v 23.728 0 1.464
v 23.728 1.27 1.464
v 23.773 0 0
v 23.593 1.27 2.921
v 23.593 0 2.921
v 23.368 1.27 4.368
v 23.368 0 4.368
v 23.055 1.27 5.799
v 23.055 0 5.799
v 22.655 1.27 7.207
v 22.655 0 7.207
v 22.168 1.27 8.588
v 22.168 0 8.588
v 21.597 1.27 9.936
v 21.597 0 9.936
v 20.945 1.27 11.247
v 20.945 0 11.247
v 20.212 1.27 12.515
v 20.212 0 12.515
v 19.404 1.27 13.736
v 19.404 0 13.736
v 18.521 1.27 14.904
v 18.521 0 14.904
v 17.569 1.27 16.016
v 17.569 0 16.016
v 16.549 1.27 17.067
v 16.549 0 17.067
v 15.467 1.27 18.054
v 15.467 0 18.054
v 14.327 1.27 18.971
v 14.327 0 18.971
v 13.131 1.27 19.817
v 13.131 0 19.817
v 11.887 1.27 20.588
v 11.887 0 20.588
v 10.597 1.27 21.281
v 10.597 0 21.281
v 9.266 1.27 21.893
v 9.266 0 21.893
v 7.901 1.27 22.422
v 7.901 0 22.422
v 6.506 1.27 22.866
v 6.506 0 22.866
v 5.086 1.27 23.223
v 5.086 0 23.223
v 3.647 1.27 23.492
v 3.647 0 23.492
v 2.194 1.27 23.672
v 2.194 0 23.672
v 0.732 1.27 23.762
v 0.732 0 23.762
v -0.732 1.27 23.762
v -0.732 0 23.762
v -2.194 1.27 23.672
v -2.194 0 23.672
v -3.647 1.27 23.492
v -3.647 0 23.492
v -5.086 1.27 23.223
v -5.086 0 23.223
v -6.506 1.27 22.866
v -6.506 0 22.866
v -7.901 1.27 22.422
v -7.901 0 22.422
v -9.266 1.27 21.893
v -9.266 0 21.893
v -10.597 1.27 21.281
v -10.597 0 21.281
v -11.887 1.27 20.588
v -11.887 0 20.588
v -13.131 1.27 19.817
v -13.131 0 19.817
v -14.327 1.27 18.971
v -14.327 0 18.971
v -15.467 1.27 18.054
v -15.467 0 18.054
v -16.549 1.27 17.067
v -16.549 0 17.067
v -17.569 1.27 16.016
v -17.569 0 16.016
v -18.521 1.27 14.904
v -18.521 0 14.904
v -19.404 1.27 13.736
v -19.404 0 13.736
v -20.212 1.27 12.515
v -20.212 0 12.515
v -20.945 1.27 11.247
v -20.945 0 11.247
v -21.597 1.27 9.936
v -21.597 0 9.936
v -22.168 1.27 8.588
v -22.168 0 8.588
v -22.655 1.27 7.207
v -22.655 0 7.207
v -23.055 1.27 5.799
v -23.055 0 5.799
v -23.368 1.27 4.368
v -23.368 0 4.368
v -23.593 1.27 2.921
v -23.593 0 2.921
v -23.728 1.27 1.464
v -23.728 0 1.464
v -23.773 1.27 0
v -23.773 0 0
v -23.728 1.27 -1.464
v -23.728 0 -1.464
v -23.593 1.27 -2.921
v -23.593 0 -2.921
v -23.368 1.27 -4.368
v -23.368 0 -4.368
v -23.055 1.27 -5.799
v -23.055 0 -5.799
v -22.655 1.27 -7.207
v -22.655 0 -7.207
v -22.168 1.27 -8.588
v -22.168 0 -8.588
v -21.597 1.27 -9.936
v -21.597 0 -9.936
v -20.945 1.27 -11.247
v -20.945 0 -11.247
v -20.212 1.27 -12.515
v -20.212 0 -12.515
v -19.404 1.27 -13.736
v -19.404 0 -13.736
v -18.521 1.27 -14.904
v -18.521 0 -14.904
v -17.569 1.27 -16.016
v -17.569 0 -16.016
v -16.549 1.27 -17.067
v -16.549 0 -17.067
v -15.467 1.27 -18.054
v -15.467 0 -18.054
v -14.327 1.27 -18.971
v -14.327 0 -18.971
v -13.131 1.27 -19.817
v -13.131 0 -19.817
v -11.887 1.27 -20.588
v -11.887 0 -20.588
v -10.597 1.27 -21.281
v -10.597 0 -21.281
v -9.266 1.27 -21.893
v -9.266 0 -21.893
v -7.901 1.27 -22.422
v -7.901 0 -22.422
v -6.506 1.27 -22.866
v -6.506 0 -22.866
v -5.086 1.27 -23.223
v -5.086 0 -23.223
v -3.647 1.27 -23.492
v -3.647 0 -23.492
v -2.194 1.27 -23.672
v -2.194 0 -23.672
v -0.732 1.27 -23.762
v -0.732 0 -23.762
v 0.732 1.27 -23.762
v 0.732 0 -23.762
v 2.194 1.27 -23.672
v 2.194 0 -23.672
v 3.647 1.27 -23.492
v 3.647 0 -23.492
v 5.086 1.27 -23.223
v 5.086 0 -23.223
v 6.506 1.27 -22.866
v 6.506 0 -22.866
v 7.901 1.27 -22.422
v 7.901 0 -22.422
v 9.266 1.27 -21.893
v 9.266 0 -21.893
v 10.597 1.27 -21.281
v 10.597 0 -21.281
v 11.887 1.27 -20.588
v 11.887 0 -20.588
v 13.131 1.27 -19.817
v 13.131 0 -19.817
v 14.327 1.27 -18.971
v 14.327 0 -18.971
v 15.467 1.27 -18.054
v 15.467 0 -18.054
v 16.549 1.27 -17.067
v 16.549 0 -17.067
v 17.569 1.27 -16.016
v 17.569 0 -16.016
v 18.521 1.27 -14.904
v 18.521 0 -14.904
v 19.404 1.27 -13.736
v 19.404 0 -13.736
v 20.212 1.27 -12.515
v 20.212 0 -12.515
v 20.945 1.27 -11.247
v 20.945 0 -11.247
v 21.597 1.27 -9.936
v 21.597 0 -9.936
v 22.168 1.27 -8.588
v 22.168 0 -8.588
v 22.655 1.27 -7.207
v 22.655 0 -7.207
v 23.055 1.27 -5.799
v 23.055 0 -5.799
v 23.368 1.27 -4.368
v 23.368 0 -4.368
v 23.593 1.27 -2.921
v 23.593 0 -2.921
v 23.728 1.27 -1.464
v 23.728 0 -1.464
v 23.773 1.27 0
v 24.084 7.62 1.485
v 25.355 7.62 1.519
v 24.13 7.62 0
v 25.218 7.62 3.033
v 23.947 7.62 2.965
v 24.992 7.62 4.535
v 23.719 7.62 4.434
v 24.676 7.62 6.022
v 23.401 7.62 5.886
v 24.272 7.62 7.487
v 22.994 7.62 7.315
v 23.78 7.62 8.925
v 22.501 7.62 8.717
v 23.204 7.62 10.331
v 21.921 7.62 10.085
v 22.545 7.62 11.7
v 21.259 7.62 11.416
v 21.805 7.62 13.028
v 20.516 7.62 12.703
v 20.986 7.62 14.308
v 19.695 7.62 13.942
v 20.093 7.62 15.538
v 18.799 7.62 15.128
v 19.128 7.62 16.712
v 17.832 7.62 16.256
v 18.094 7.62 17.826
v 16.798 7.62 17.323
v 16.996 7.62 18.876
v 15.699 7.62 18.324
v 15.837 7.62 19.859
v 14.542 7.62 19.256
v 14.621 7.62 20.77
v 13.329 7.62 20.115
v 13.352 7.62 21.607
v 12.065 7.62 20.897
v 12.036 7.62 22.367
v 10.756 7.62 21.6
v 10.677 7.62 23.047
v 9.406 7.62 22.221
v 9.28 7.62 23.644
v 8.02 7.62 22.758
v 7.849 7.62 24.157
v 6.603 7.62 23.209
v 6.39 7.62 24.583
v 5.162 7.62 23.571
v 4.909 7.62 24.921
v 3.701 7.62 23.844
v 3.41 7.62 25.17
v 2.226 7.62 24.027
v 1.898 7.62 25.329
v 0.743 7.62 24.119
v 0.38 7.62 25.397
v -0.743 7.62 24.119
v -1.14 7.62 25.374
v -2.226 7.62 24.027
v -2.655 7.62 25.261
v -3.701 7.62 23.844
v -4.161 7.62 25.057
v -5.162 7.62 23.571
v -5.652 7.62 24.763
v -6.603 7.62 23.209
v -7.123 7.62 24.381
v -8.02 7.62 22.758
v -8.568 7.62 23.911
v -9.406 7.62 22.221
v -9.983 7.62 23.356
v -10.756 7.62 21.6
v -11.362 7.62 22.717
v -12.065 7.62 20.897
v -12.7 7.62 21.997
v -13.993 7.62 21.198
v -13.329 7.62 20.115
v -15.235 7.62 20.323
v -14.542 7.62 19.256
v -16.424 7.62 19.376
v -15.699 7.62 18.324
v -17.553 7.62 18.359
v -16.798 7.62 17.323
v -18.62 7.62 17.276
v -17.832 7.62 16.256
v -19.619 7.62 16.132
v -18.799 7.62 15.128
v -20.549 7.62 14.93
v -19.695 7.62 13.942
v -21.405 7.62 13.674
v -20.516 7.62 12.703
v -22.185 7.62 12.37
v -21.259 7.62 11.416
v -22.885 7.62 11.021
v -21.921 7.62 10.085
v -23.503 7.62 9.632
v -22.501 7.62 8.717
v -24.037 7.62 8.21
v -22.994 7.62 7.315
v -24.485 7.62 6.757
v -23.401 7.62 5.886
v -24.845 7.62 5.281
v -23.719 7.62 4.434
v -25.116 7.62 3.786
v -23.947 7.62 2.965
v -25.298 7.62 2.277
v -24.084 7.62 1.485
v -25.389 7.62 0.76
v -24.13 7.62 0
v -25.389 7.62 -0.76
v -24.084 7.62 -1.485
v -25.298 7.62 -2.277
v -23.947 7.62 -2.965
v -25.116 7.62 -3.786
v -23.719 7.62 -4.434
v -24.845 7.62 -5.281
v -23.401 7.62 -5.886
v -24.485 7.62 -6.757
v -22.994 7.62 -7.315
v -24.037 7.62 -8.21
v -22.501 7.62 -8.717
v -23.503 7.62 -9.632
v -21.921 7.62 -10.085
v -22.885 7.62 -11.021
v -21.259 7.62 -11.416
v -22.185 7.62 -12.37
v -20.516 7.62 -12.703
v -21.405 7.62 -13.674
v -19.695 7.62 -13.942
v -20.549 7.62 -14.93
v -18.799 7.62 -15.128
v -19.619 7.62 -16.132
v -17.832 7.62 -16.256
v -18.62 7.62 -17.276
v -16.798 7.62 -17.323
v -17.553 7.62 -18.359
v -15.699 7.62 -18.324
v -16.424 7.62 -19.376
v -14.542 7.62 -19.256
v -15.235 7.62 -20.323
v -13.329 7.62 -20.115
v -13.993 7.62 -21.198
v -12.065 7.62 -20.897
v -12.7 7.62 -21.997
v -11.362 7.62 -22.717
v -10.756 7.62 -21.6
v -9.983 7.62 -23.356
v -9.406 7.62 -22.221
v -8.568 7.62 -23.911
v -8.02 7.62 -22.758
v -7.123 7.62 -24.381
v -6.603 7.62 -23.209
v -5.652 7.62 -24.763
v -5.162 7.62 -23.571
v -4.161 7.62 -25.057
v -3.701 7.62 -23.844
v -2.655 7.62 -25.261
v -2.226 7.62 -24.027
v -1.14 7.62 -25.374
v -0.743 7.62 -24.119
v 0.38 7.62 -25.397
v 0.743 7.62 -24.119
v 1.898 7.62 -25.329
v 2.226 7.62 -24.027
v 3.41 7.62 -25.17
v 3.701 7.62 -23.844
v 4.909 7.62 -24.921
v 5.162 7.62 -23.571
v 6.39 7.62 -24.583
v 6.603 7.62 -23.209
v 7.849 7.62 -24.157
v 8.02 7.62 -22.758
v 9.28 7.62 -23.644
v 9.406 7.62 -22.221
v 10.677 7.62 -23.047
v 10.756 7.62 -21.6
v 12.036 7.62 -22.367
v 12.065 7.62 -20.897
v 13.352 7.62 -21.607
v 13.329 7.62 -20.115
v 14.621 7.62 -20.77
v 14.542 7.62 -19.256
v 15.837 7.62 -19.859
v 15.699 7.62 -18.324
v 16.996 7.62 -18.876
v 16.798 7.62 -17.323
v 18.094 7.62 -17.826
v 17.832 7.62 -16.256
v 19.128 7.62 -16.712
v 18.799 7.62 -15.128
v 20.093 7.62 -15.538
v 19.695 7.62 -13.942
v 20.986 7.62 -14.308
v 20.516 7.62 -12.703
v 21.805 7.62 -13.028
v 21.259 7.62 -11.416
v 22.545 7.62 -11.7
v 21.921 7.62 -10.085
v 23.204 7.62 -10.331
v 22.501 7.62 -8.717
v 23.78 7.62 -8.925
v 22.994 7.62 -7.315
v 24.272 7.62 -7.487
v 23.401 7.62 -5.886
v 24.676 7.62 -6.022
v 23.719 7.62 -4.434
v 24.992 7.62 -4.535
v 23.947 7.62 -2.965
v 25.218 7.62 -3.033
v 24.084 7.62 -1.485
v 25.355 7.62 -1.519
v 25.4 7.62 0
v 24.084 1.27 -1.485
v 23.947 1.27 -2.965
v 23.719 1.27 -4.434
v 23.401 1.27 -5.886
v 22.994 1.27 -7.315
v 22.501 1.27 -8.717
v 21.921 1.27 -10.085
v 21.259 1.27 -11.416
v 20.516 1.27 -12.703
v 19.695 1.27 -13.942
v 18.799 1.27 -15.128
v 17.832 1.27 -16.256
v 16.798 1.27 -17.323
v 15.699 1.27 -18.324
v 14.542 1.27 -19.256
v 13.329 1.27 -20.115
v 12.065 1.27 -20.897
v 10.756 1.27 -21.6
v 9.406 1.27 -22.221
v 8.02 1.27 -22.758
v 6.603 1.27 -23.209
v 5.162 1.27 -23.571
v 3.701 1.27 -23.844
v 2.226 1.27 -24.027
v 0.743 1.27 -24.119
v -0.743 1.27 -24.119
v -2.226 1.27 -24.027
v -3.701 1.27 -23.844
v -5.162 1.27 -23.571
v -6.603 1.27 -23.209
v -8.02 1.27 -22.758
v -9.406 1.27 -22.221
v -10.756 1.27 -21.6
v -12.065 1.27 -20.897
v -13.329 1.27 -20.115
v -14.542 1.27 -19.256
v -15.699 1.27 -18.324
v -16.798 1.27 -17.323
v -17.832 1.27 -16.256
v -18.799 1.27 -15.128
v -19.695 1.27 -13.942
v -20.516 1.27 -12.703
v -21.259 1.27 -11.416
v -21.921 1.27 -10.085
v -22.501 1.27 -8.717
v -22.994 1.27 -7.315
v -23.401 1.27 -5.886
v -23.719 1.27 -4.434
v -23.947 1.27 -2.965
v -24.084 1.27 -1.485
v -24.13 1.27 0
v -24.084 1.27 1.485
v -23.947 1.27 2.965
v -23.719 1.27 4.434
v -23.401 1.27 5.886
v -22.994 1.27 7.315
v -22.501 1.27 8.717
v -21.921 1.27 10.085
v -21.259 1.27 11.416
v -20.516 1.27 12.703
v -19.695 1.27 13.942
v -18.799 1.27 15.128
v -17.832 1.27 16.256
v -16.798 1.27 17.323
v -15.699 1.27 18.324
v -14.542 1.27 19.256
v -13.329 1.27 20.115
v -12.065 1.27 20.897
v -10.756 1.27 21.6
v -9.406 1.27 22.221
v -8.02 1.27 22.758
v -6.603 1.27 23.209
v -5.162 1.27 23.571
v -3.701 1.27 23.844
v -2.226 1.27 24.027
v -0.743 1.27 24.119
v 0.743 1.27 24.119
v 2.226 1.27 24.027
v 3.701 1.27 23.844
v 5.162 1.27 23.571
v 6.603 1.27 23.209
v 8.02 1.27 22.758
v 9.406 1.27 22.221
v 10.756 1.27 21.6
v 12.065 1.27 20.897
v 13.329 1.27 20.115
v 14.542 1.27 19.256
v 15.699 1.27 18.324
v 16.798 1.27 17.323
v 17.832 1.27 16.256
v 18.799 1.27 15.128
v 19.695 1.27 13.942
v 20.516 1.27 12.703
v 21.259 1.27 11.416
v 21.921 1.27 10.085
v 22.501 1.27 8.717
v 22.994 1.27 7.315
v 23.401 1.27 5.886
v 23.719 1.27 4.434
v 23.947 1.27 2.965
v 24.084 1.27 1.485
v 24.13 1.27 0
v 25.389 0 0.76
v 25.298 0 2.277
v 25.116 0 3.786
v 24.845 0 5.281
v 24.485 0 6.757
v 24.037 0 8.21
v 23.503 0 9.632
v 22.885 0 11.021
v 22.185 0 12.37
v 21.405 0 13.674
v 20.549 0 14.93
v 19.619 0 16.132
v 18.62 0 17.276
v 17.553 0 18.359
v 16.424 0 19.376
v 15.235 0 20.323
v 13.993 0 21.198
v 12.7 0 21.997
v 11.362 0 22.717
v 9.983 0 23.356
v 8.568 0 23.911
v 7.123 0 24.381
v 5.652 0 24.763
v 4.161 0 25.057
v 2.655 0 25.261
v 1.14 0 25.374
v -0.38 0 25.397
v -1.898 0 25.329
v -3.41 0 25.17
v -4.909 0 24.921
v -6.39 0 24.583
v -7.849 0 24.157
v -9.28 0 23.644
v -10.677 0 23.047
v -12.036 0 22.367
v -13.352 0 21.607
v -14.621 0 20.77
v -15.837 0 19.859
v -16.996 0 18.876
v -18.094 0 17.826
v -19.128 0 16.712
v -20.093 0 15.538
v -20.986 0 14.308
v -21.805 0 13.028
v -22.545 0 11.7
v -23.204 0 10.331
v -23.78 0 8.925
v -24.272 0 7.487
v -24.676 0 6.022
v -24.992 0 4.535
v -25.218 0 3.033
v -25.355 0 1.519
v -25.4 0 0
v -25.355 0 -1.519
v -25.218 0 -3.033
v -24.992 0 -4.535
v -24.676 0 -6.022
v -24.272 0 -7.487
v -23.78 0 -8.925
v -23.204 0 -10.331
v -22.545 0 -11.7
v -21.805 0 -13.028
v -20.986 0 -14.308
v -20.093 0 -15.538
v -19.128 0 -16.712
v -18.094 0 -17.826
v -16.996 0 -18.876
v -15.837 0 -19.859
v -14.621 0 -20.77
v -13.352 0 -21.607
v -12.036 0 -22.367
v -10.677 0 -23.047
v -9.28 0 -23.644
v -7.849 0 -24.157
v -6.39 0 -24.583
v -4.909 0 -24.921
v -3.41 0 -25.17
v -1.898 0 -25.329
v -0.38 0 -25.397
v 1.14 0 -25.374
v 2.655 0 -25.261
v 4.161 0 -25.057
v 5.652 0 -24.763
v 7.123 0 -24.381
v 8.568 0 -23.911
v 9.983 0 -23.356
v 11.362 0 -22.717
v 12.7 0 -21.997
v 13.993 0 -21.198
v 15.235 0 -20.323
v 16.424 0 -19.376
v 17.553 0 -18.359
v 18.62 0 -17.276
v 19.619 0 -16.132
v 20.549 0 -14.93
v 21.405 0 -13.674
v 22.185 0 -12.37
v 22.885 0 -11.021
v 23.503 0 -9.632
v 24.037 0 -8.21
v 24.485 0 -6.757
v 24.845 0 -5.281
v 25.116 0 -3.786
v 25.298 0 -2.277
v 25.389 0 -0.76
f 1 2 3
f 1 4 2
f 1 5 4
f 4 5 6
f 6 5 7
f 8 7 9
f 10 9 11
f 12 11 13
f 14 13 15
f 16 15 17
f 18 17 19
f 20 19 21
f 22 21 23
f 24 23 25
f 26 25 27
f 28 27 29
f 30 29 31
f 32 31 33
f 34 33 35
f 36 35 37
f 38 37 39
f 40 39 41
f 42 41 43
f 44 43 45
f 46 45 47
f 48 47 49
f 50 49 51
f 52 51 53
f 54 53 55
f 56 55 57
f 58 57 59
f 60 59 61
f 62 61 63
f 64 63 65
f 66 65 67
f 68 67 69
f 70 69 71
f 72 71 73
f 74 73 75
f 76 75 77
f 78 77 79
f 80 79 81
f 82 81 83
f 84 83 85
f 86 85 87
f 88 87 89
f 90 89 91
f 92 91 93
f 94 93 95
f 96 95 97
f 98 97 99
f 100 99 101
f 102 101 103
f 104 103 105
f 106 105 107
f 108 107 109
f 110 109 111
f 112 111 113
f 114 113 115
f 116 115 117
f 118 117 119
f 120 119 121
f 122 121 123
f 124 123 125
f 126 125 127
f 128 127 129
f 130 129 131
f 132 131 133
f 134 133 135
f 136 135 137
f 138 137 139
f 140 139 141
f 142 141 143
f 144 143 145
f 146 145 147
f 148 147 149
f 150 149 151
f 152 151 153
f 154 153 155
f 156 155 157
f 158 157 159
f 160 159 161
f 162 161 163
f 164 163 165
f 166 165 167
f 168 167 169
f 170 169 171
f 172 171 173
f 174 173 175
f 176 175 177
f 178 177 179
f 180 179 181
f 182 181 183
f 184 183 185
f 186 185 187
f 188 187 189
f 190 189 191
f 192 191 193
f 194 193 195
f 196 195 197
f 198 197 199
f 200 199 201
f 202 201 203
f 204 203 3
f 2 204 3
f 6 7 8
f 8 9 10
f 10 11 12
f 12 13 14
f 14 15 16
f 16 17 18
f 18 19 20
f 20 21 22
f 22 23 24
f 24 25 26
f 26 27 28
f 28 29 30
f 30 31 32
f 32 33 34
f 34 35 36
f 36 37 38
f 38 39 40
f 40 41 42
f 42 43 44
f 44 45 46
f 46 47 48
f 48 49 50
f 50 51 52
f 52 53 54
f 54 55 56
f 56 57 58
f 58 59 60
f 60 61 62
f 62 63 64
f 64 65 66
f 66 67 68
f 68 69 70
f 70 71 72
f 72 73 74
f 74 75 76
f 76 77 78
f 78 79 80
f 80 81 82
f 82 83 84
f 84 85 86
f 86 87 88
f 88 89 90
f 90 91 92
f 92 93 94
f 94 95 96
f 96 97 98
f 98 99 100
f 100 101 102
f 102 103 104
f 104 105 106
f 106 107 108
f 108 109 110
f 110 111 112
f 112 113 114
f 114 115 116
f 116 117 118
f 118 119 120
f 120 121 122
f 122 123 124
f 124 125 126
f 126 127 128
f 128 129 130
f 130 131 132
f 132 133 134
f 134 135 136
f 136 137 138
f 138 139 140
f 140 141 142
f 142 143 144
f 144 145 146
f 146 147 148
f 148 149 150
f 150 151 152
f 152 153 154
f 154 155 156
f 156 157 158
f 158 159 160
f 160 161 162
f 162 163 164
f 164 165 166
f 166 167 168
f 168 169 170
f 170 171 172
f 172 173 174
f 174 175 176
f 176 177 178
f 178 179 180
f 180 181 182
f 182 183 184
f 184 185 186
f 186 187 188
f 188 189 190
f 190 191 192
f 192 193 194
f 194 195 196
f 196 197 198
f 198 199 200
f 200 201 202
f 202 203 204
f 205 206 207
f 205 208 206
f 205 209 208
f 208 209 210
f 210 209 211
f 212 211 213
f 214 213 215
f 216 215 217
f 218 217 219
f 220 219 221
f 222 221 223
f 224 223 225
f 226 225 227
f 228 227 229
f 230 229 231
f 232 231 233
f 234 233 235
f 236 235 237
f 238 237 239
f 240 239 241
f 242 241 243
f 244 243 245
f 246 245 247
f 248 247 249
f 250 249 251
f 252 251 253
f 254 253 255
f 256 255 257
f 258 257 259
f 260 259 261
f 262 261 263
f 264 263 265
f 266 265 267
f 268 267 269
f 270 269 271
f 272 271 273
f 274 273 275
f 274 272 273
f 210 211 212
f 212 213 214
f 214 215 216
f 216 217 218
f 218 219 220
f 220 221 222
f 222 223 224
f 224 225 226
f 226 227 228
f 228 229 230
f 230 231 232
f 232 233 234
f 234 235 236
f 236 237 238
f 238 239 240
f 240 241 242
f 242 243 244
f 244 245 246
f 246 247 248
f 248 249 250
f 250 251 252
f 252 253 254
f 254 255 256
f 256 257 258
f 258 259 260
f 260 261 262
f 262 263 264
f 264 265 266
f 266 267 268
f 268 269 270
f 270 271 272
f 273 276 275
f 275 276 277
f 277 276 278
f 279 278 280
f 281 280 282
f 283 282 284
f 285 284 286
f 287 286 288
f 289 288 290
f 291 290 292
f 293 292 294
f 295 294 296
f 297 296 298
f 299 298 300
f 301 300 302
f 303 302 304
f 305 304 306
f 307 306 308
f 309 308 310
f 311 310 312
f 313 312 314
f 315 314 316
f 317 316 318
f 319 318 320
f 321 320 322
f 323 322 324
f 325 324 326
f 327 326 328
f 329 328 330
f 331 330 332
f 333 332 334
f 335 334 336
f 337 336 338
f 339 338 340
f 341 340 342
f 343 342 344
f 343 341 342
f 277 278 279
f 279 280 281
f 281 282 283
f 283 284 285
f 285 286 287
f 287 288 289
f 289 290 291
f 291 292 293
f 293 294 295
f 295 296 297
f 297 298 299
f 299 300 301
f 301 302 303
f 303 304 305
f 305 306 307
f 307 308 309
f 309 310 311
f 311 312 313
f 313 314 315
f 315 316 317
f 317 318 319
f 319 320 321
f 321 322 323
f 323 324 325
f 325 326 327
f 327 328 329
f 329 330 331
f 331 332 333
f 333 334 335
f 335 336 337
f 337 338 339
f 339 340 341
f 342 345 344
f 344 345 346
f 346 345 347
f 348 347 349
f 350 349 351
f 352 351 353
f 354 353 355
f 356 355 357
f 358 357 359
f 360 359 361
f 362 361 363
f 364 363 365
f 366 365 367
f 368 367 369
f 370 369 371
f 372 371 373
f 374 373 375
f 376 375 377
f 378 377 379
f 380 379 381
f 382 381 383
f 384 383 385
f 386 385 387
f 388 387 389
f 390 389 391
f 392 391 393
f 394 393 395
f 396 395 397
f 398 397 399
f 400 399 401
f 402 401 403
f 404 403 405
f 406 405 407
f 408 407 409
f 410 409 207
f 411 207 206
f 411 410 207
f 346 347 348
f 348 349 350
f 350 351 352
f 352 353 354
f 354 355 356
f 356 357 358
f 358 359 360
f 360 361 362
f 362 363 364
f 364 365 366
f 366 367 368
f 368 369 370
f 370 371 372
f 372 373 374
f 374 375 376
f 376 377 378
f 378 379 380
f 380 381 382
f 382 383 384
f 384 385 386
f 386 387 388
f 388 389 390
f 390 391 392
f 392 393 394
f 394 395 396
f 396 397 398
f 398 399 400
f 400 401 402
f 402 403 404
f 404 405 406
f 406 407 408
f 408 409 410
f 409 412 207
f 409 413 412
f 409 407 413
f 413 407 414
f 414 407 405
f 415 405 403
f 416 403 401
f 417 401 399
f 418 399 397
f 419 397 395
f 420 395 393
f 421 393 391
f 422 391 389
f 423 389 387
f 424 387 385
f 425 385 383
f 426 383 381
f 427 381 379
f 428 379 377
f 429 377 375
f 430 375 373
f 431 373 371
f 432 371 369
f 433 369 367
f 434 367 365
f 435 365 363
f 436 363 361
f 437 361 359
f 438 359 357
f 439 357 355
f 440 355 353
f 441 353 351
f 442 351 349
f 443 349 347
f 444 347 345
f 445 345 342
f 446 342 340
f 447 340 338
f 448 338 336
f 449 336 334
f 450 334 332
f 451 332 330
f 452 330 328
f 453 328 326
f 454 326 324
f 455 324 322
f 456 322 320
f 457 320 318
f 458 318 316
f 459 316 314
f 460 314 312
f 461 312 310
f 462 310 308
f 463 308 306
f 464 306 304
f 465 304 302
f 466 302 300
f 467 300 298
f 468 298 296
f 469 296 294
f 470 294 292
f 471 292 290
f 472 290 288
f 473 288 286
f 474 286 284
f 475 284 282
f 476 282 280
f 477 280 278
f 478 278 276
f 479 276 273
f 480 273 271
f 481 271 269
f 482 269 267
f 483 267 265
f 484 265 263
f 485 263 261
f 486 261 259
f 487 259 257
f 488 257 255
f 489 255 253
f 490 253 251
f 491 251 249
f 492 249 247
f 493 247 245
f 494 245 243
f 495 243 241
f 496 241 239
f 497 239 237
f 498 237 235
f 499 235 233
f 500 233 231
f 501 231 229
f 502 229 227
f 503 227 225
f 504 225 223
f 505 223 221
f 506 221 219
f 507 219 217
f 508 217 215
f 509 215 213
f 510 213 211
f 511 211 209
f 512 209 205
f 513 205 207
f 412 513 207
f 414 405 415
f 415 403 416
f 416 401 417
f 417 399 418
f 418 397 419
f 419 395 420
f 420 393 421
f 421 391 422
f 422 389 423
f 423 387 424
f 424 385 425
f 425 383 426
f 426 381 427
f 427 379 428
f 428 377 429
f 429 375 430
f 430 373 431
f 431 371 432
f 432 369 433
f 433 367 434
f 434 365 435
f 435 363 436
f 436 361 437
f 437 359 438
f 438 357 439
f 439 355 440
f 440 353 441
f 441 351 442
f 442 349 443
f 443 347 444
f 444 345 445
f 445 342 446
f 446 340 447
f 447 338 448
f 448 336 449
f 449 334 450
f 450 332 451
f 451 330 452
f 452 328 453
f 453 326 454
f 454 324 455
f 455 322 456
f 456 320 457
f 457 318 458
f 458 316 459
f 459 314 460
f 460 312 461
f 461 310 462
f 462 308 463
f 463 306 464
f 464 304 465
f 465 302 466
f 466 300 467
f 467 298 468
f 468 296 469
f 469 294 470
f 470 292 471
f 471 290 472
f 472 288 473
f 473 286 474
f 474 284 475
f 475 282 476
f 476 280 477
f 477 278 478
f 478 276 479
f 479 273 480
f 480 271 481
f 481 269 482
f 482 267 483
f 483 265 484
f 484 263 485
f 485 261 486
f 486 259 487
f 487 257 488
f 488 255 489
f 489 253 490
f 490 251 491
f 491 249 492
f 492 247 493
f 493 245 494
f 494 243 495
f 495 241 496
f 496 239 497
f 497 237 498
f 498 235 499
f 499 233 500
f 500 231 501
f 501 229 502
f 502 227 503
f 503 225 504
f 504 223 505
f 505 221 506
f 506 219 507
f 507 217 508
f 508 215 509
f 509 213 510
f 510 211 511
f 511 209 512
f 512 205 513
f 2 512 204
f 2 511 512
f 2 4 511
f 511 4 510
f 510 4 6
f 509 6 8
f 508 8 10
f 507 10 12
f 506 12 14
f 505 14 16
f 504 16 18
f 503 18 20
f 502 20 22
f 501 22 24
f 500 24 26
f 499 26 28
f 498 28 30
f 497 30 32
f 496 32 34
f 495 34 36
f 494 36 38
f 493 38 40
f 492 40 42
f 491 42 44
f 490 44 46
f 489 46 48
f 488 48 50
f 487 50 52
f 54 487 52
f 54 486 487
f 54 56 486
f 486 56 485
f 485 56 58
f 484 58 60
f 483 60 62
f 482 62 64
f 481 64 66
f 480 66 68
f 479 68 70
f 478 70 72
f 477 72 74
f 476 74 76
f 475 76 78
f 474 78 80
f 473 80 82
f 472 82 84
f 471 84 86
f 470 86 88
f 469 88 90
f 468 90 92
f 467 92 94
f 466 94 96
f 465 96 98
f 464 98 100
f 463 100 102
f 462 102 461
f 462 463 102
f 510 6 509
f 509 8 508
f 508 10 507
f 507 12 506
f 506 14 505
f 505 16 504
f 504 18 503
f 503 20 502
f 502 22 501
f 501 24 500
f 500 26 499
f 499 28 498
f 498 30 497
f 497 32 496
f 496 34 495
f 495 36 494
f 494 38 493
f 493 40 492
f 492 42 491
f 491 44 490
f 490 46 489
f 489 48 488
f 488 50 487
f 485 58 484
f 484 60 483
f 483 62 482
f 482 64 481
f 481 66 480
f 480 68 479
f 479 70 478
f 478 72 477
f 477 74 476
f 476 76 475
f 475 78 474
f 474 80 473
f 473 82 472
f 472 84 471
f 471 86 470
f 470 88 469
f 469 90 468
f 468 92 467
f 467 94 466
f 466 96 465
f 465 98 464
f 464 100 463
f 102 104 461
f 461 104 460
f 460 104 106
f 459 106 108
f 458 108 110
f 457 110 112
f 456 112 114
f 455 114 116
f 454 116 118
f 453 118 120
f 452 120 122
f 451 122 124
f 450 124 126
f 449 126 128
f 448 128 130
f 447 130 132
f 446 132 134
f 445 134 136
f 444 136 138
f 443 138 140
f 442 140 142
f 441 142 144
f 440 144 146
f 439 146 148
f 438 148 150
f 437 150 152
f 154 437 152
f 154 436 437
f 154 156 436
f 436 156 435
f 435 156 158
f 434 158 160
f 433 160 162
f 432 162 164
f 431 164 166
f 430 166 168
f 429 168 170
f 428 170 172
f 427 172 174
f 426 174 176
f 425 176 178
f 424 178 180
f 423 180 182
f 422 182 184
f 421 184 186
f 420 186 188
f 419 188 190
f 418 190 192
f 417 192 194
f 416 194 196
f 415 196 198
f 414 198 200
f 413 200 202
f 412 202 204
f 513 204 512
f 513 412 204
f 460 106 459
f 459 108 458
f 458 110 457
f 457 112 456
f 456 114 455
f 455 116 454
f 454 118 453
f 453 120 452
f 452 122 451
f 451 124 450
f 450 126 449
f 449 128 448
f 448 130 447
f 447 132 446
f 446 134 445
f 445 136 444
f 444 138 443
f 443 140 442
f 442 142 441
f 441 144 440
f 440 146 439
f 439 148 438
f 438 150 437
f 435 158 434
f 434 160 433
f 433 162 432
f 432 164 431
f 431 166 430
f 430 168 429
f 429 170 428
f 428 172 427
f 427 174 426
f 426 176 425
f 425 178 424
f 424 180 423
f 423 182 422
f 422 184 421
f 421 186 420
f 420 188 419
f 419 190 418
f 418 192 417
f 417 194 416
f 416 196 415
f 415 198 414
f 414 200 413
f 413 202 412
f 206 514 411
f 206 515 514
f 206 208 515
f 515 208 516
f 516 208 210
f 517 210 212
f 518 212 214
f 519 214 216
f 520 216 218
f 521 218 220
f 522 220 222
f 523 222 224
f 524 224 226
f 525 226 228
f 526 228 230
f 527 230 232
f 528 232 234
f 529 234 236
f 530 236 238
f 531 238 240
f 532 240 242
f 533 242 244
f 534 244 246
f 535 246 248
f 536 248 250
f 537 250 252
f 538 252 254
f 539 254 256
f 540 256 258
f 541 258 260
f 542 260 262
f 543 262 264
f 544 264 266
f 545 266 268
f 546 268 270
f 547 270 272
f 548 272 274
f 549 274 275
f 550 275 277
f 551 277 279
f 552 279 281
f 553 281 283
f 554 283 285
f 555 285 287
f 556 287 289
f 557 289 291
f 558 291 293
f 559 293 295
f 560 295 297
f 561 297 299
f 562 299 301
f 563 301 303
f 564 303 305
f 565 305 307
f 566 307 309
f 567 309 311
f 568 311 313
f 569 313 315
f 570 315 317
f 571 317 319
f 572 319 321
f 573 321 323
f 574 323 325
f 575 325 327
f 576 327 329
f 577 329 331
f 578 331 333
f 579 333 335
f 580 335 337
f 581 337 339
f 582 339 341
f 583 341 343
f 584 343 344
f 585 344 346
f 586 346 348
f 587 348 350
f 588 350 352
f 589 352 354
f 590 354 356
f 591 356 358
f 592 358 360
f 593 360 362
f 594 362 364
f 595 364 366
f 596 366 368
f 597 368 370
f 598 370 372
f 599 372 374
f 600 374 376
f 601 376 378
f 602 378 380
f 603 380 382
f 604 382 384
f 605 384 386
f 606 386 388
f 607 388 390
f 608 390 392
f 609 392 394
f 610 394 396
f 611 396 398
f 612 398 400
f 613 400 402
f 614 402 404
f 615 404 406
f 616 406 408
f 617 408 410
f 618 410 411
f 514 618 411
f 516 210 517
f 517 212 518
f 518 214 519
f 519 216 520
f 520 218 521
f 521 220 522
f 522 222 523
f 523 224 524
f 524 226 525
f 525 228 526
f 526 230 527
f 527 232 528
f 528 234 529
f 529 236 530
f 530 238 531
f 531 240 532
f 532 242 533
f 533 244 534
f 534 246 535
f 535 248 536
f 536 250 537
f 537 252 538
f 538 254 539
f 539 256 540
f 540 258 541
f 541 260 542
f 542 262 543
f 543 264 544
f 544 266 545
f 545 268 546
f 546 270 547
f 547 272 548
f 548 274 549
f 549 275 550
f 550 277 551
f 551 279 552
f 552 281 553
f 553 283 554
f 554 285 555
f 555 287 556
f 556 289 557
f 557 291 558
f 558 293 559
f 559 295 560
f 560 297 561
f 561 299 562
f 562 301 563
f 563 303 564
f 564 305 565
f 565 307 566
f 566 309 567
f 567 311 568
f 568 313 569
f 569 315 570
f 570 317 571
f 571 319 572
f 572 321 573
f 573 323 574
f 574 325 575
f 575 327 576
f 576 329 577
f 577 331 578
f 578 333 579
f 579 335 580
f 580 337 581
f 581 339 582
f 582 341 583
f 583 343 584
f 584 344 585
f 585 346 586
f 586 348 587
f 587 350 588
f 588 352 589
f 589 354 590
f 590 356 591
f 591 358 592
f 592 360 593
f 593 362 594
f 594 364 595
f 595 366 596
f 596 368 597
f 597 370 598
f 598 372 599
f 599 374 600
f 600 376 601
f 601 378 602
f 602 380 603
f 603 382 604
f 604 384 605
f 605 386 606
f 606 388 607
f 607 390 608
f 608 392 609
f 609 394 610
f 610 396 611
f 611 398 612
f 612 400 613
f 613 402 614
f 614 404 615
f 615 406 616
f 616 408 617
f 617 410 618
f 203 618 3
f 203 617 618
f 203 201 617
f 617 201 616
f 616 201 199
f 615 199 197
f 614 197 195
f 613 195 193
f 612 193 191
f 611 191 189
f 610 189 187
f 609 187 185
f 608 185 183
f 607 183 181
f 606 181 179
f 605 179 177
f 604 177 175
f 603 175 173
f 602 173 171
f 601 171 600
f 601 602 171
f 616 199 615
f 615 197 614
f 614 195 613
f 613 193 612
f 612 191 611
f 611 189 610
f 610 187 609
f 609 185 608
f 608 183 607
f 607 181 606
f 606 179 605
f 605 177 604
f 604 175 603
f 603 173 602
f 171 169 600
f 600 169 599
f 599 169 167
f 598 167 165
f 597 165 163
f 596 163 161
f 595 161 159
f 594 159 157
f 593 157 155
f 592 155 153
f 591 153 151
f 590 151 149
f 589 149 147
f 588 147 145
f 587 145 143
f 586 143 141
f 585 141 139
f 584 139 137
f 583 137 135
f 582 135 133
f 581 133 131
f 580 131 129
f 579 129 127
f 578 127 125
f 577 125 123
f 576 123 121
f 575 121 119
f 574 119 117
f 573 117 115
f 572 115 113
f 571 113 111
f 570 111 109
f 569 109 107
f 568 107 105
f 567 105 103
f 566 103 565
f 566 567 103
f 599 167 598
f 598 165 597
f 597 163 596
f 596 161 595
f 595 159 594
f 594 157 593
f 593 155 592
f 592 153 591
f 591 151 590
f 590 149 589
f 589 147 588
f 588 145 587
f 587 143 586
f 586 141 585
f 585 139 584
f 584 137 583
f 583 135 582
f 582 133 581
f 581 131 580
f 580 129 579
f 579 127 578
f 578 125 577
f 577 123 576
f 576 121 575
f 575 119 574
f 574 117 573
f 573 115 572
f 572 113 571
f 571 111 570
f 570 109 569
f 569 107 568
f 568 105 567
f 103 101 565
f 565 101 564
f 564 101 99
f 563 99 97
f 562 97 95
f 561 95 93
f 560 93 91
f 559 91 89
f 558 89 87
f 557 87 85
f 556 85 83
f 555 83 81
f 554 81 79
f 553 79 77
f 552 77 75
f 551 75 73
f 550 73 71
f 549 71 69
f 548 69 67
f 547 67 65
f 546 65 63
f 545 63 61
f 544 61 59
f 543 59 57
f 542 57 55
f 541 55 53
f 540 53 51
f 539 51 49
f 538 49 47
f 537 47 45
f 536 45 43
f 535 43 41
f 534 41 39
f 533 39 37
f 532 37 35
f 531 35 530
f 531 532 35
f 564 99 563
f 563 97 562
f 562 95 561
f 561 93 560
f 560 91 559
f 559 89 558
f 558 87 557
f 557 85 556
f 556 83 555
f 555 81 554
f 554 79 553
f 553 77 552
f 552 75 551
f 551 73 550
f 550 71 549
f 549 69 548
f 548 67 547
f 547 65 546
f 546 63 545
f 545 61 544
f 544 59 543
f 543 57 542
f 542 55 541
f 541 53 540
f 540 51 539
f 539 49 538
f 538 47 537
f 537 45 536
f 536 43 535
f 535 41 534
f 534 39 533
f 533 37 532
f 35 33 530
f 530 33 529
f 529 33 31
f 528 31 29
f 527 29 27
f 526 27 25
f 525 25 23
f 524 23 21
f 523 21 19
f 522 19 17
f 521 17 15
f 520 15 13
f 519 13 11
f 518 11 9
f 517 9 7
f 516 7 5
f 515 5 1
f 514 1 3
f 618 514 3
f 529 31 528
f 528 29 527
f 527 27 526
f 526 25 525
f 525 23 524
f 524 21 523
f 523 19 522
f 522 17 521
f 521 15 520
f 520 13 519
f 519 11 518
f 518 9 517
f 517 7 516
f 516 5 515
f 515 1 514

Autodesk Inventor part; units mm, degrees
ref_plane "YZ Plane" through (0, 0, 0) normal (1, 0, 0) x (0, 1, 0)
ref_plane "XZ Plane" through (0, 0, 0) normal (0, 1, 0) x (-1, 0, 0)
ref_plane "XY Plane" through (0, 0, 0) normal (0, 0, 1) x (1, 0, 0)
sketch "Sketch1" plane through (0, 0, 0) normal (0, 1, 0) x (-1, 0, 0)
  circle A0 centre (0, 0) radius 25.4
  dimension "d0" = 50.8
extrude "Extrusion1" add sketch "Sketch1" along normal blind 17.78
shell "Shell1" thickness 1.27 removed faces 1 at (7.2508, 17.78, -1.9085)
sketch "Sketch2" plane through (0, 0, 0) normal (0, -1, 0) x (1, 0, 0)
  circle A0 centre (0, 0) radius 22.86
  dimension "d4" = 45.72
extrude "Extrusion2" cut sketch "Sketch2" against normal blind 7.62
sketch "Sketch4" plane through (0, 17.78, 0) normal (0, 1, 0) x (1, 0, 0)
  circle A0 centre (0, 0) radius 25.4
  circle A1 centre (0, 0) radius 24.13
extrude "Extrusion4" cut sketch "Sketch4" against normal blind 10.16
sketch "Sketch5" plane through (0, 1.27, 0) normal (0, 1, 0) x (1, 0, 0)
  circle A0 centre (0, 0) radius 23.7732
  circle A1 centre (0, 0) radius 22.86
extrude "Extrusion5" cut sketch "Sketch5" against normal blind 7.62
properties part number "Adapter"
